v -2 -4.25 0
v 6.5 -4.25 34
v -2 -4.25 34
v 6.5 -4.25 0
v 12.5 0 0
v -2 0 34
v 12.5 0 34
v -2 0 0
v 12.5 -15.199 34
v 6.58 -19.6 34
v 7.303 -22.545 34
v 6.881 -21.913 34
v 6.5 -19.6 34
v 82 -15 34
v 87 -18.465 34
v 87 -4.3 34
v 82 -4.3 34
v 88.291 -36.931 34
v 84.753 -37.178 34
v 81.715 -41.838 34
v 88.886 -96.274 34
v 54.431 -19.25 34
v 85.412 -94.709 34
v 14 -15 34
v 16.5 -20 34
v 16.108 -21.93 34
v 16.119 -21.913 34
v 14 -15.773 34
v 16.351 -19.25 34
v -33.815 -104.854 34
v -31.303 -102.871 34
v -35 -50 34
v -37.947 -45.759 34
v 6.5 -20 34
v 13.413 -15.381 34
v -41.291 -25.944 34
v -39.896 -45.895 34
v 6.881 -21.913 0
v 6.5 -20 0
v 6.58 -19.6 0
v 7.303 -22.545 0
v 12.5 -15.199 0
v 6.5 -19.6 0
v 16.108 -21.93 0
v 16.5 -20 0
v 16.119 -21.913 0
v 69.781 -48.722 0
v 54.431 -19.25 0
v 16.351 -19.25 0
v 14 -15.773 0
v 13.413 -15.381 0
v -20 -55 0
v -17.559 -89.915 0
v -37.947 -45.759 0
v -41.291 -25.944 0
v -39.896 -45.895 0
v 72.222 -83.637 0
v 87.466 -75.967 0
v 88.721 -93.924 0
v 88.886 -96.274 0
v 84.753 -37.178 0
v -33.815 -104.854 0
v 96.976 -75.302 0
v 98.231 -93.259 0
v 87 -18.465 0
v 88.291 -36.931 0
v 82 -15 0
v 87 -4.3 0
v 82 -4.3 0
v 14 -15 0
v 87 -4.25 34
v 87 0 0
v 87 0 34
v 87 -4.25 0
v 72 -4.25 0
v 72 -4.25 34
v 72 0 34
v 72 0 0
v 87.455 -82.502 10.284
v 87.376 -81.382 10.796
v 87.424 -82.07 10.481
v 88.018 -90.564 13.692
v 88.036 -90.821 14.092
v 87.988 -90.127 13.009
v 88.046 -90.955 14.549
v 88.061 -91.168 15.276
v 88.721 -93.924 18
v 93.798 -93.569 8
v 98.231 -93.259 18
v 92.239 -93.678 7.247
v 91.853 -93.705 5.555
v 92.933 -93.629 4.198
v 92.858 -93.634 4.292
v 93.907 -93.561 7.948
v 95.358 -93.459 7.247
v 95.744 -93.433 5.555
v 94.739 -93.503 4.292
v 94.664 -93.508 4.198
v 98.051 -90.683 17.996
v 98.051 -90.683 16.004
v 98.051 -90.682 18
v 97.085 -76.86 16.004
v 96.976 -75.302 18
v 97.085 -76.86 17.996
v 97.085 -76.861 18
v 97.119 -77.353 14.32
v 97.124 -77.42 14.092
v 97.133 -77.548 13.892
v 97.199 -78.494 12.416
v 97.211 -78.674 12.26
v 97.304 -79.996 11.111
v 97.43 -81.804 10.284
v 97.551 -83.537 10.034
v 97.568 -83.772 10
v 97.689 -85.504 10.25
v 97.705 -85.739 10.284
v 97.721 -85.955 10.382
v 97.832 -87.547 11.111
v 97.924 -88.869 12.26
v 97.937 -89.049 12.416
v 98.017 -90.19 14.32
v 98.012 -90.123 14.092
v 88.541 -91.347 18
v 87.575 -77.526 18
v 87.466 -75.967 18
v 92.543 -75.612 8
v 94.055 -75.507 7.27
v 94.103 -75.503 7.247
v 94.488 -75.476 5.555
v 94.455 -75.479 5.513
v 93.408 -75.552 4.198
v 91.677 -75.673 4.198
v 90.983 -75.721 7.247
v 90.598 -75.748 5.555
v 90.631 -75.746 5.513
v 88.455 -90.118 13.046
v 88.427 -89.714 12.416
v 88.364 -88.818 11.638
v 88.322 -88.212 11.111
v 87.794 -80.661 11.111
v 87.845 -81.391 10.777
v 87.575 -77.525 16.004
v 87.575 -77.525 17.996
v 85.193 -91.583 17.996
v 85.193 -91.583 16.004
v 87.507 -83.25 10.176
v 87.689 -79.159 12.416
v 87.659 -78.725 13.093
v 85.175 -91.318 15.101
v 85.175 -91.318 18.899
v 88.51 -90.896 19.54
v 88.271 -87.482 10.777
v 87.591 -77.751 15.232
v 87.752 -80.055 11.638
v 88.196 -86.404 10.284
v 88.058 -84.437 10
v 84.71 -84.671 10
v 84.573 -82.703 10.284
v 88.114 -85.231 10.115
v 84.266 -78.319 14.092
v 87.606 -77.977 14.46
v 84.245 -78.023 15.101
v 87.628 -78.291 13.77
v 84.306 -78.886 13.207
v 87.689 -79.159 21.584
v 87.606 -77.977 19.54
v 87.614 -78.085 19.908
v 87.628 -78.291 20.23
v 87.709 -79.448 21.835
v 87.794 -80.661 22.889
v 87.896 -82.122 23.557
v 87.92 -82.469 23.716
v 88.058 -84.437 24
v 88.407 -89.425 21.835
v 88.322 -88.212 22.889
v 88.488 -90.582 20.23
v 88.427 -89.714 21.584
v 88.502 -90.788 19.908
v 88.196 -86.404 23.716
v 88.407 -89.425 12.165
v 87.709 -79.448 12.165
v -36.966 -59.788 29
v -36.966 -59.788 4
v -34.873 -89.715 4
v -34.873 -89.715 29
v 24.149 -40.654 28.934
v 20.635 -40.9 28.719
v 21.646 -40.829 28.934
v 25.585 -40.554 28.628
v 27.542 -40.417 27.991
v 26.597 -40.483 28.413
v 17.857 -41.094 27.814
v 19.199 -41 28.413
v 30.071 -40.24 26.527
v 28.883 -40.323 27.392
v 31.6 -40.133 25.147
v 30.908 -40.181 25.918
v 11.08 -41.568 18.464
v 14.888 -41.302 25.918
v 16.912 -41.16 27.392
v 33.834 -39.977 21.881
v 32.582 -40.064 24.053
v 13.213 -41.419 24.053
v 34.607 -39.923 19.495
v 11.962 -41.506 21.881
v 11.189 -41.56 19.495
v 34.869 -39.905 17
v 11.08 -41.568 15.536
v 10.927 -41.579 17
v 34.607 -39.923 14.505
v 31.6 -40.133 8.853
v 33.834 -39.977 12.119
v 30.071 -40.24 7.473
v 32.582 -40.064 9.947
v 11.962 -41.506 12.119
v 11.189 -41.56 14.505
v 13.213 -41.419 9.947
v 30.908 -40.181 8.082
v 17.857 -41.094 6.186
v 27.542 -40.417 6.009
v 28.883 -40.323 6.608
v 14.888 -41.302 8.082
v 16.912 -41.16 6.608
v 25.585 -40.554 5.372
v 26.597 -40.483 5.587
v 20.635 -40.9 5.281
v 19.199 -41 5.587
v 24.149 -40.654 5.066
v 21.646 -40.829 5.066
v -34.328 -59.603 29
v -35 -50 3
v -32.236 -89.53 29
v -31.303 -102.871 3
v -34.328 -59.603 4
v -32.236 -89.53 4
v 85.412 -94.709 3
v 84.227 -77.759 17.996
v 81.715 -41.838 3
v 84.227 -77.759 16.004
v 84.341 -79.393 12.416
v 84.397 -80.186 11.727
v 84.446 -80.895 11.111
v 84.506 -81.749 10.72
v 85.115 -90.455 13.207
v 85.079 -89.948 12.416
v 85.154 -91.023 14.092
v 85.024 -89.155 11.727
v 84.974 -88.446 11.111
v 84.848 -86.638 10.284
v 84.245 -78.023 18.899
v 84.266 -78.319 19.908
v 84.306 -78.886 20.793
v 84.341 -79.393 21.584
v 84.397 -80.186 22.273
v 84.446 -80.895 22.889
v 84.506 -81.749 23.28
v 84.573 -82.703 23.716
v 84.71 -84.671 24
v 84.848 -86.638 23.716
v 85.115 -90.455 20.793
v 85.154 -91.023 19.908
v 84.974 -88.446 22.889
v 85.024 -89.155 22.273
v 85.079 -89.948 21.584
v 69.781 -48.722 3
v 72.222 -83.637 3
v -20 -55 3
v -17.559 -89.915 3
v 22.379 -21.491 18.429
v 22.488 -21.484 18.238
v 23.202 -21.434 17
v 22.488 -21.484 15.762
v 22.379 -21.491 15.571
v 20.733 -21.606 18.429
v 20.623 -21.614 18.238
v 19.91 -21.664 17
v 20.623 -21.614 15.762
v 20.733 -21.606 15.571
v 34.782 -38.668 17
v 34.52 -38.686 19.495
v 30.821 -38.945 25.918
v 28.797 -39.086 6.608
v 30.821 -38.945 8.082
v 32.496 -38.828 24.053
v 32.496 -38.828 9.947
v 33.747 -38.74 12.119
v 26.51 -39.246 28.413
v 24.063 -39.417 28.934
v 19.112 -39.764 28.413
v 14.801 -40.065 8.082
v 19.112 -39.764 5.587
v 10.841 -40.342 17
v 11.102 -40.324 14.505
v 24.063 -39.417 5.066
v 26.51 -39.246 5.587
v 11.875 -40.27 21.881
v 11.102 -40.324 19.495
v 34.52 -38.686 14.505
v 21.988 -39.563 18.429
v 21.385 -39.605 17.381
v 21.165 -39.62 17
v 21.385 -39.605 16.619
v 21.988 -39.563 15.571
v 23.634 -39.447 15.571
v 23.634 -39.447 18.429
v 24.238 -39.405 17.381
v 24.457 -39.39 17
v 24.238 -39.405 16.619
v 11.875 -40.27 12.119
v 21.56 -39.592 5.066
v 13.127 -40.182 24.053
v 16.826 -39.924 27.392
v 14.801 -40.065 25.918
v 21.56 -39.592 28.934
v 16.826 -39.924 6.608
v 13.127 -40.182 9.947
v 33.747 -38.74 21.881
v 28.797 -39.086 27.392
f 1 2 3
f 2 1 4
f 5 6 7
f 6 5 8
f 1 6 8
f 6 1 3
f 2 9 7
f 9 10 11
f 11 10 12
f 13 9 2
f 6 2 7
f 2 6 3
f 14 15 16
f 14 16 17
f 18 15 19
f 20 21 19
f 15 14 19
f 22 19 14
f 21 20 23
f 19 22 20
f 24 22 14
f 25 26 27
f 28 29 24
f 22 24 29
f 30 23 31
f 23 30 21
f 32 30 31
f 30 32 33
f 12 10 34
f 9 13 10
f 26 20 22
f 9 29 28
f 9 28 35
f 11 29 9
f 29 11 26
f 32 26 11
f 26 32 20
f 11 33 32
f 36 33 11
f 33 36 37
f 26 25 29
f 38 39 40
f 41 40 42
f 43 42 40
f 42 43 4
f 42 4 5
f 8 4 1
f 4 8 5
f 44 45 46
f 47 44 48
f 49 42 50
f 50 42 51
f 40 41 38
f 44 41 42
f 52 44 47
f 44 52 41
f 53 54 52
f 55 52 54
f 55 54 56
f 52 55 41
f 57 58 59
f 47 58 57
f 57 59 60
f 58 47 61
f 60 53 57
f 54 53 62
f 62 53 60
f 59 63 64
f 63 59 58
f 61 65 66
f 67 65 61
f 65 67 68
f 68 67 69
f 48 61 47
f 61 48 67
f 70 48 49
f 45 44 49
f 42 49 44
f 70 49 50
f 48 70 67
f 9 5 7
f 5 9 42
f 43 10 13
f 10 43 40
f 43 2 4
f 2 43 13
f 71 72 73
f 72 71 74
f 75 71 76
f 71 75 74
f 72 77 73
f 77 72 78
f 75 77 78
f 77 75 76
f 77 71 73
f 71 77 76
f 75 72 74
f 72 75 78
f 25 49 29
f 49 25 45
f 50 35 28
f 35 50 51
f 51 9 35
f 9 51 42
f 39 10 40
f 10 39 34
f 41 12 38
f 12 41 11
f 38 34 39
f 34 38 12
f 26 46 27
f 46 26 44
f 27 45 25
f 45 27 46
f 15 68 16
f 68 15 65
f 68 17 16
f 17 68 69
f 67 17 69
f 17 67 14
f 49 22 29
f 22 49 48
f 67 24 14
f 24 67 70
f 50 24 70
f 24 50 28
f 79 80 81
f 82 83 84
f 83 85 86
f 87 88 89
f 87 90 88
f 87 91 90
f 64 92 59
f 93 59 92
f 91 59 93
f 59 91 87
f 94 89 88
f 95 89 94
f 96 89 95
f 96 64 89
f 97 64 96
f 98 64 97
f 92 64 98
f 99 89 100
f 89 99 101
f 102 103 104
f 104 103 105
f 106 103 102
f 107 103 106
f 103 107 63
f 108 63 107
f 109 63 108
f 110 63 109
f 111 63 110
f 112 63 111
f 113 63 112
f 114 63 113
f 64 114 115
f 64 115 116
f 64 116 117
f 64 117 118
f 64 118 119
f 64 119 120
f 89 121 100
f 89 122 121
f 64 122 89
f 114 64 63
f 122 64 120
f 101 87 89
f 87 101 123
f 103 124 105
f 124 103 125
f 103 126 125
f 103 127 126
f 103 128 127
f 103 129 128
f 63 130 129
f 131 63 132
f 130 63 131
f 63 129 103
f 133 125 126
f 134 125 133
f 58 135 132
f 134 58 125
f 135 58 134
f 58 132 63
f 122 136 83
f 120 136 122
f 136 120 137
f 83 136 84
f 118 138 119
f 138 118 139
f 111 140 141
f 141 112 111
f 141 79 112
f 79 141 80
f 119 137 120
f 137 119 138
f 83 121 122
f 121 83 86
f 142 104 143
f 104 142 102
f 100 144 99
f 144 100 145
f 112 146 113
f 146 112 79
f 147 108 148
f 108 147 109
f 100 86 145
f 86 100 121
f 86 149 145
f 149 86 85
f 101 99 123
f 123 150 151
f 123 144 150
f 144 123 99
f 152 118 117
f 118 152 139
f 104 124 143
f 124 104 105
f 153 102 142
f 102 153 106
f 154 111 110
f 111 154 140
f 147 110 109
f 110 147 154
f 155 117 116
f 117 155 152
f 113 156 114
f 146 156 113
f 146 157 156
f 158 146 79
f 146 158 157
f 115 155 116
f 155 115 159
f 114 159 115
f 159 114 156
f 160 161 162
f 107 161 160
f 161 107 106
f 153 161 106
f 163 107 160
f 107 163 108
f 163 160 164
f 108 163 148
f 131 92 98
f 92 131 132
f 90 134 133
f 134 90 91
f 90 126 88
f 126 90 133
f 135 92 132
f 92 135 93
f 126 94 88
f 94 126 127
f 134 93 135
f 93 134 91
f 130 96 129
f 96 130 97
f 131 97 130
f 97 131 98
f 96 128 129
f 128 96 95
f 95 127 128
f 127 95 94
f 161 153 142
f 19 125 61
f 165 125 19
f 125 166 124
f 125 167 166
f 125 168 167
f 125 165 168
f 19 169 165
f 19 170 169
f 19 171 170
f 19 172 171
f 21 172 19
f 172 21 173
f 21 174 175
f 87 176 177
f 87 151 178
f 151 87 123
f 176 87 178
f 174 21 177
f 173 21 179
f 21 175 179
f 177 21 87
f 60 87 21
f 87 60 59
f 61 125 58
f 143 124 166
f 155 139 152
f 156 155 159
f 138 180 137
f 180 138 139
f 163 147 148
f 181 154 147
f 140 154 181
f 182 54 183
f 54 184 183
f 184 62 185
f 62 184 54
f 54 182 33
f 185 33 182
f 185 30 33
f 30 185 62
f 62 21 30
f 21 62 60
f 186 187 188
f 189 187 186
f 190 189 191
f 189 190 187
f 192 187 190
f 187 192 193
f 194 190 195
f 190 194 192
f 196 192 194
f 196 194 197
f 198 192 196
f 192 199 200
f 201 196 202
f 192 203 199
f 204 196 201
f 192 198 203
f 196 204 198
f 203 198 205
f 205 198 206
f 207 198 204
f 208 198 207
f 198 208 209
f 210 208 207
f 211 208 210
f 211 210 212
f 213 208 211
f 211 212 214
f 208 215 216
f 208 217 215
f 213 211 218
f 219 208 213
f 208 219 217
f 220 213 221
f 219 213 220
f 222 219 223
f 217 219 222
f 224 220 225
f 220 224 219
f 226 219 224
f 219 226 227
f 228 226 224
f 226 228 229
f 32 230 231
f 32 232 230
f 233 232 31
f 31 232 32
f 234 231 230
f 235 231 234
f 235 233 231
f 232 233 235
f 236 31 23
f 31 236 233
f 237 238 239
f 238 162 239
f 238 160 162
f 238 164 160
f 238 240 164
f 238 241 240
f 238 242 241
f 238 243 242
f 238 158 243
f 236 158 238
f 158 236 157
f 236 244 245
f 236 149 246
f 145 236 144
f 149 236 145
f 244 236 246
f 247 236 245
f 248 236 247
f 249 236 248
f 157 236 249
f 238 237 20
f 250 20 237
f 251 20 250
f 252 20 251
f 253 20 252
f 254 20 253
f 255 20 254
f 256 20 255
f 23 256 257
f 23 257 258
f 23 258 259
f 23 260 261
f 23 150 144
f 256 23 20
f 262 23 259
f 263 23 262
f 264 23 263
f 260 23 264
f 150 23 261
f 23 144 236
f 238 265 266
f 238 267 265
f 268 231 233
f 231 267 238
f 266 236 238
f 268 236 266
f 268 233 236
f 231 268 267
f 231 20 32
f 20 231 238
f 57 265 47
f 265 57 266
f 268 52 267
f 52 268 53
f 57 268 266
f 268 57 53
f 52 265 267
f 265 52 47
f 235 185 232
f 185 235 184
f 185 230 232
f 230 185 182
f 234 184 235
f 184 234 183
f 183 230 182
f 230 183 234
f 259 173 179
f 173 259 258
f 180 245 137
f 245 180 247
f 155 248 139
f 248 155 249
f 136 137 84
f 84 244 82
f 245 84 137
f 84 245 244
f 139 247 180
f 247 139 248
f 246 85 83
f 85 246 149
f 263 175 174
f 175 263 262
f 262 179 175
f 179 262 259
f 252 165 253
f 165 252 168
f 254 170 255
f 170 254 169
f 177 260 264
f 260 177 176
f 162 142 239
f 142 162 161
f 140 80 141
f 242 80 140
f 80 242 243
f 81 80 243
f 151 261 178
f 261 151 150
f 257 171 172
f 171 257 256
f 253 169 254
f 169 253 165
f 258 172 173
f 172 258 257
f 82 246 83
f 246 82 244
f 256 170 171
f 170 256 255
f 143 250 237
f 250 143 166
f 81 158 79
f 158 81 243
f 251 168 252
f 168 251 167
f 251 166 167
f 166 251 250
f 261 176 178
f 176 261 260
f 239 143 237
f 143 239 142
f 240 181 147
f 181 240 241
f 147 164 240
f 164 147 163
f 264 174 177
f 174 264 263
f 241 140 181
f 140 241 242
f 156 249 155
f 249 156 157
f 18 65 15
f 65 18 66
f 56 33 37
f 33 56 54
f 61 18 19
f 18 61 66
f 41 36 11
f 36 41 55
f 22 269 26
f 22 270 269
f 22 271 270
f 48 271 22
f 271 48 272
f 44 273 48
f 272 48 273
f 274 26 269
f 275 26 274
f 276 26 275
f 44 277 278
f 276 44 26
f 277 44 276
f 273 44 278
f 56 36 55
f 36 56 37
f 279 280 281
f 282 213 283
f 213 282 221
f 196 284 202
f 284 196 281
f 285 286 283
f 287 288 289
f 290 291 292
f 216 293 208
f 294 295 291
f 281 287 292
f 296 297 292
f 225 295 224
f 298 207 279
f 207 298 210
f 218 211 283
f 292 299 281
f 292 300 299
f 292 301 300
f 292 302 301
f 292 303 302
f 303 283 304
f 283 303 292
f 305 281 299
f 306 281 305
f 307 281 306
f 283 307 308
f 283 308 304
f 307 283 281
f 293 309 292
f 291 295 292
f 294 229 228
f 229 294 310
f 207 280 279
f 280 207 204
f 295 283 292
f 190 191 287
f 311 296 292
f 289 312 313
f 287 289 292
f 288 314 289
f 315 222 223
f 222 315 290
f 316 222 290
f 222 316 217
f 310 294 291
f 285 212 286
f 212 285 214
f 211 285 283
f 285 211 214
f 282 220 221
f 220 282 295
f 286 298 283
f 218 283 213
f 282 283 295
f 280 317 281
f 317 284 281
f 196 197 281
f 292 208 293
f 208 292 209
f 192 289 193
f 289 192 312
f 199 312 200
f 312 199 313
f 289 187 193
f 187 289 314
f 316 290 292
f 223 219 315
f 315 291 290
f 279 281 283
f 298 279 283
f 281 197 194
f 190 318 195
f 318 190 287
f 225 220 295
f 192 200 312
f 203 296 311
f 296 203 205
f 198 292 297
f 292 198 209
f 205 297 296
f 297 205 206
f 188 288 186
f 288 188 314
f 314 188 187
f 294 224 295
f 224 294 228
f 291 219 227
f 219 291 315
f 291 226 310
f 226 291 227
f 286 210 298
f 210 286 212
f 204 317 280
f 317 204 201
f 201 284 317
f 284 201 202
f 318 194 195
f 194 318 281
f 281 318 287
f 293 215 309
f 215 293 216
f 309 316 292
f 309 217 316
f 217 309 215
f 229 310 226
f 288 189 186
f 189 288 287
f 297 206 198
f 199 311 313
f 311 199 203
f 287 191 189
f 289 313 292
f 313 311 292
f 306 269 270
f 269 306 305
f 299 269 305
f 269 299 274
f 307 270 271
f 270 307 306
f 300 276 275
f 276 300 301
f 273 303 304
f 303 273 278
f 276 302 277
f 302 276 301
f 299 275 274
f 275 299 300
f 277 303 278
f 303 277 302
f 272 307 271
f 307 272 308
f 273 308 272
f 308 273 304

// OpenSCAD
// file: gearmount.scad
module halfcylinder(r,h)
{
    difference(){
       cylinder(r=r,h=h);
       translate([0,0-r,0-.5]) cube([r*2+1,r*2+1,h+1]);
    } 
}

module thirdcylinder(r,h)
{
    difference(){
       cylinder(r=r*2,h=h);
       translate([0-r/1.5,0-2*r,0-.5]) cube([r*4+1,r*4+1,h+1]);
    } 
}
module gearmount(thewidth)
{
    translate([-2,0,0])   cube([14,thewidth,4.25]);
    translate([8-1.5,0,0])  cube([6,thewidth,19.6]);
    
    translate([72,0,0])  cube([15,thewidth,4.25]);
    translate([13-1.5,0,20]) rotate([-90,0,0]) cylinder(r=5,h=thewidth); 
   
    translate([82,0,20]) rotate([-90,0,0]) cylinder(r=5,h=thewidth); 
     
    translate([82,0,4.3])  cube([5,thewidth,15.6]);
   
    translate([14,0,15]) cube([69,thewidth,4.25]);
    
}


module batterysupport(xwidth)
{
       
         rotate([0,90,0]) translate([-128,-32+xwidth/2,15]) cube([64,64,5]);
         rotate([0,90,0]) translate([-68,xwidth/2,15]) cylinder(r=32,h=5);
       
    
}

module battery_plate(xwidth)
{
    difference(){
        batterysupport(xwidth);
        rotate([0,0,0]) translate([0,0,90]) scale([1.02,1.02,1.02]) battery_stud(xwidth);
        //rotate([0,90,-90]) translate([40,10,-8]) cube([xwidth,xwidth,10]);
    }
        
}

module saw_battery_plate(xwidth)
{
    difference(){
        batterysupport(xwidth);
        rotate([180,0,0]) translate([0,0-25,-42]) scale([1.02,1.02,1.02]) battery_stud(xwidth);
        //rotate([0,90,-90]) translate([40,10,-8]) cube([xwidth,xwidth,10]);
    }
        
}

module battery_stud_body(thewidth)
{
   offset = (thewidth / 2 ) - 7.75;
  // %rotate([0,90,0]) translate([0,0,10]) cube([35.85,thewidth,50]);
   rotate([0,90,0]) translate([4,0,10]) cube([thewidth-7,thewidth,50]);
   rotate([0,90,0]) translate([-14,0,9]) cube([85,thewidth,5]);
   rotate([0,90,0]) translate([22,thewidth/2,10]) cylinder(r=thewidth/2,h=50);    
}

module battery_stud(thewidth)
{
   difference(){
     battery_stud_body(thewidth);
     rotate([0,90,0]) translate([-9,4,16]) rotate([0,0,-45]) cube([thewidth-4,10,51]);
     rotate([0,90,0]) translate([-9+thewidth-8,thewidth+15,16]) rotate([0,0, 180+45]) cube([thewidth-6,10,51]);
    rotate([0,90,0]) translate([17.25,thewidth/2,40]) scale([2.0,4.0,4.0]) sphere(r=5.0);   
   }
}   
   
module brace(thewidth)
{   hull(){
      translate([-50,0,-10]) cube([thewidth/2,thewidth,2]);
      rotate([0,90,0]) translate([-90,0,10]) cube([thewidth,thewidth,2]);
       }
      hull(){
       translate([-18,0,25]) cube([thewidth/2,thewidth,2]);   
       rotate([0,90,0]) translate([-32,0,10]) cube([thewidth/2,thewidth,2]);
      }
}


module Ushape(ur1, ur2 ,uh) {

    // Circle resolution
    cRes = 30;
    // Extrusion resolution
    eRes = 50;

    union(){
        // The rounded part
        rotate_extrude(angle=180, convexity=10, $fn=eRes)
               translate([ur2, 0]) circle(ur1, $fn=cRes);

        // U extensions
        rotate([90,0,0]) linear_extrude(height=uh,$fn=eRes)
               translate([ur2, 0]) circle(ur1, $fn=cRes);
        rotate([90,0,0]) linear_extrude(height=uh,$fn=eRes)
               translate([-ur2, 0]) circle(ur1, $fn=cRes);
    }

}


module dewalt_you(xwidth)
{
    rotate([0,90,0]) translate([0-xwidth+25/2,-45,50]) Ushape(5,(xwidth+10+2)/2,40);
    hull(){
       translate([55,-20,-5]) cylinder(r=5,h=xwidth+20);
       translate([45,-20,-5]) cylinder(r=5,h=xwidth+20);     
       translate([50,-20,-5]) cylinder(r=5,h=xwidth+20);  
       translate([50,-30,-5]) cylinder(r=5,h=xwidth+20);  
      }    
    
}

module dewalt_upper(xwidth)
{
        translate([-23.5,0,0]) dewalt_you(xwidth);
        translate([ 23+.6,0,0]) dewalt_you(xwidth);
        rotate([180,0,0]) translate([xwidth+15,125-1,-48+1.8]) Ushape(5,(xwidth+10+2)/2,40);
        rotate([180,0,0]) translate([xwidth+15,125-1,1]) Ushape(5,(xwidth+10+2)/2,40);
}

module dewalt_base(xwidth)
{
    rotate([90,0,0]) translate([0,-5,0])gearmount(xwidth+20);
    rotate([90,0,0]) translate([15-5,-5,15+4.5]) cube([90,xwidth+20,18]);
}

module dewalt_lower(xwidth)
{
    difference(){
          dewalt_base(xwidth);
          translate([2,-5-1,0]) scale([1.02,1.02,1.02]) dewalt_upper(xwidth);
      }
}

module dewalt_holder(xwidth)
{   
      dewalt_lower(xwidth);
      %translate([2,-5-1,0]) dewalt_upper(xwidth);
      rotate([-90,0,0]) translate([120,20,-50]) dewalt_upper(xwidth);
      
}
module sander_holder()
{
    xwidth = 27.5;
    rotate([90,0,0]) gearmount(xwidth);
    rotate([90,0,0]) translate([0,0,90]) battery_stud(xwidth);
    rotate([90,0,0]) translate([0,0,0]) brace(xwidth);
    %rotate([90,0,0]) translate([-1,0,0]) battery_plate(xwidth);
    rotate([0,90,0]) translate([-20,40,-50]) battery_plate(xwidth);
}

module saw_holder()
{
    xwidth = 27.5;
    rotate([90,180,0]) translate([-100,0-xwidth,0]) gearmount(xwidth);
    difference(){
       rotate([90,0,-90]) translate([10+30,0,-50]) battery_stud(xwidth);
       rotate([90,0,0]) translate([12+75,-1,18.25+30]) cube([35,xwidth+2,6.5]);
       }
    rotate([90,0,0]) translate([12,0,19.25]) cube([75,xwidth,6+30]);
    //rotate([90,0,0]) translate([0,0,0]) brace(xwidth);
    %rotate([90,0,-90]) translate([10+30,0-(xwidth/2)+16,-140]) battery_plate(xwidth);
    rotate([0,90,0]) translate([-20,40,-50]) battery_plate(xwidth);
}

module dewalt_charger_holder()
{
    xwidth = 27.4;
    rotate([90,0,0]) gearmount(xwidth);
    difference(){
      rotate([90,0,4]) translate([7-50,0,23]) cube([125,xwidth,20]);
      rotate([90,0,4]) translate([60,xwidth/2,41]) cylinder(r=12,h=3);
      rotate([90,0,4]) translate([60,xwidth/2,19]) cylinder(r=1.65,h=30);
      }
}

module milwaukee_charger_holder()
{
    xwidth = 27.4;
    rotate([90,0,0]) gearmount(xwidth);
    difference(){
      rotate([90,0,4]) translate([7-75,0,23]) cube([150,xwidth,20]);
      rotate([90,0,4]) translate([60,xwidth/2,41]) cylinder(r=12,h=3);
      rotate([90,0,4]) translate([60,xwidth/2,19]) cylinder(r=1.65,h=30);
      rotate([90,0,4]) translate([60-103.5,xwidth/2,41]) cylinder(r=12,h=3);  
      rotate([90,0,4]) translate([60-103.5,xwidth/2,19]) cylinder(r=1.65,h=60);
      rotate([0,0,0])  translate([72,-30+3,-5]) cylinder(r=6*1.02,h=50);  
      rotate([0,0,0])  translate([8,-34.5+3,-5]) cylinder(r=6*1.02,h=50);  
      rotate([0,0,0])  translate([-54,-38.5+3,-5]) cylinder(r=6*1.02,h=50);   
      }
}

module milwaukee_charger_rod()
{
    
    cylinder(r=6,h=150);
}

module kobalt_charger_holder()
{
    xwidth = 27.4;
    rotate([90,0,0]) gearmount(xwidth);
    difference(){
      rotate([90,0,4]) translate([7-85,0,23]) cube([160,xwidth,20]);
      rotate([90,0,4]) translate([60,xwidth/2,41]) cylinder(r=12,h=3);
      rotate([90,0,4]) translate([60,xwidth/2,19]) cylinder(r=1.65,h=30);
      rotate([90,0,4]) translate([60-113.5,xwidth/2,41]) cylinder(r=12,h=3);  
      rotate([90,0,4]) translate([60-113.5,xwidth/2,19]) cylinder(r=1.65,h=60);
      rotate([0,0,0])  translate([72,-30+3,-5]) cylinder(r=6*1.02,h=50);  
      rotate([0,0,0])  translate([8-8,-34.5+3,-5]) cylinder(r=6*1.02,h=50);  
      rotate([0,0,0])  translate([-62,-38.5+3,-5]) cylinder(r=6*1.02,h=50);   
      }
}

//battery_stud(27.4);
//saw_holder();
//sander_holder();
//dewalt_holder(35);
//dewalt_lower(35);
//gearmount(15.7);
//dewalt_charger_holder();
//milwaukee_charger_holder();
//milwaukee_charger_rod();
//kobalt_charger_holder();
// main file
include <gearmount.scad>;


module psu()
{
    cube([31.9,53,117]);
}

module cord_holder()
{
    difference(){
      translate([87,-76,0]) rotate([90,-90,94]) cube([18,18,10]);
      translate([80,-85,17]) rotate([90,-90,94]) cylinder(r=7,h=20);
      translate([92.5,-75,6]) rotate([0,-90,94]) cylinder(r=2,h=20);  
      
      }
    
}

module psu_holder()
{
    xwidth = 34;
    rotate([90,0,0]) gearmount(xwidth);
    cord_holder();
    difference(){
      translate([-38,-45,0]) rotate([90,-90,94]) cube([34,60,123]);
      translate([-35,-50,3]) rotate([90,-90,94]) psu();
      translate([-20,-55,-1])  rotate([90,-90,94]) cube([15,35,90]);
      translate([-40,-60,4])  rotate([90,-90,94]) cube([25,30,20]);
      translate([80,-85,17]) rotate([90,-90,94]) cylinder(r=7,h=10);
      }
    difference(){
      rotate([90,0,4]) translate([7-50,0,23]) cube([128.5,xwidth,20]);
      rotate([90,0,4]) translate([20,xwidth/2,41]) cylinder(r=12,h=3);
      rotate([90,0,4]) translate([20,xwidth/2,19]) cylinder(r=1.65,h=30);
      }
}
psu_holder();
